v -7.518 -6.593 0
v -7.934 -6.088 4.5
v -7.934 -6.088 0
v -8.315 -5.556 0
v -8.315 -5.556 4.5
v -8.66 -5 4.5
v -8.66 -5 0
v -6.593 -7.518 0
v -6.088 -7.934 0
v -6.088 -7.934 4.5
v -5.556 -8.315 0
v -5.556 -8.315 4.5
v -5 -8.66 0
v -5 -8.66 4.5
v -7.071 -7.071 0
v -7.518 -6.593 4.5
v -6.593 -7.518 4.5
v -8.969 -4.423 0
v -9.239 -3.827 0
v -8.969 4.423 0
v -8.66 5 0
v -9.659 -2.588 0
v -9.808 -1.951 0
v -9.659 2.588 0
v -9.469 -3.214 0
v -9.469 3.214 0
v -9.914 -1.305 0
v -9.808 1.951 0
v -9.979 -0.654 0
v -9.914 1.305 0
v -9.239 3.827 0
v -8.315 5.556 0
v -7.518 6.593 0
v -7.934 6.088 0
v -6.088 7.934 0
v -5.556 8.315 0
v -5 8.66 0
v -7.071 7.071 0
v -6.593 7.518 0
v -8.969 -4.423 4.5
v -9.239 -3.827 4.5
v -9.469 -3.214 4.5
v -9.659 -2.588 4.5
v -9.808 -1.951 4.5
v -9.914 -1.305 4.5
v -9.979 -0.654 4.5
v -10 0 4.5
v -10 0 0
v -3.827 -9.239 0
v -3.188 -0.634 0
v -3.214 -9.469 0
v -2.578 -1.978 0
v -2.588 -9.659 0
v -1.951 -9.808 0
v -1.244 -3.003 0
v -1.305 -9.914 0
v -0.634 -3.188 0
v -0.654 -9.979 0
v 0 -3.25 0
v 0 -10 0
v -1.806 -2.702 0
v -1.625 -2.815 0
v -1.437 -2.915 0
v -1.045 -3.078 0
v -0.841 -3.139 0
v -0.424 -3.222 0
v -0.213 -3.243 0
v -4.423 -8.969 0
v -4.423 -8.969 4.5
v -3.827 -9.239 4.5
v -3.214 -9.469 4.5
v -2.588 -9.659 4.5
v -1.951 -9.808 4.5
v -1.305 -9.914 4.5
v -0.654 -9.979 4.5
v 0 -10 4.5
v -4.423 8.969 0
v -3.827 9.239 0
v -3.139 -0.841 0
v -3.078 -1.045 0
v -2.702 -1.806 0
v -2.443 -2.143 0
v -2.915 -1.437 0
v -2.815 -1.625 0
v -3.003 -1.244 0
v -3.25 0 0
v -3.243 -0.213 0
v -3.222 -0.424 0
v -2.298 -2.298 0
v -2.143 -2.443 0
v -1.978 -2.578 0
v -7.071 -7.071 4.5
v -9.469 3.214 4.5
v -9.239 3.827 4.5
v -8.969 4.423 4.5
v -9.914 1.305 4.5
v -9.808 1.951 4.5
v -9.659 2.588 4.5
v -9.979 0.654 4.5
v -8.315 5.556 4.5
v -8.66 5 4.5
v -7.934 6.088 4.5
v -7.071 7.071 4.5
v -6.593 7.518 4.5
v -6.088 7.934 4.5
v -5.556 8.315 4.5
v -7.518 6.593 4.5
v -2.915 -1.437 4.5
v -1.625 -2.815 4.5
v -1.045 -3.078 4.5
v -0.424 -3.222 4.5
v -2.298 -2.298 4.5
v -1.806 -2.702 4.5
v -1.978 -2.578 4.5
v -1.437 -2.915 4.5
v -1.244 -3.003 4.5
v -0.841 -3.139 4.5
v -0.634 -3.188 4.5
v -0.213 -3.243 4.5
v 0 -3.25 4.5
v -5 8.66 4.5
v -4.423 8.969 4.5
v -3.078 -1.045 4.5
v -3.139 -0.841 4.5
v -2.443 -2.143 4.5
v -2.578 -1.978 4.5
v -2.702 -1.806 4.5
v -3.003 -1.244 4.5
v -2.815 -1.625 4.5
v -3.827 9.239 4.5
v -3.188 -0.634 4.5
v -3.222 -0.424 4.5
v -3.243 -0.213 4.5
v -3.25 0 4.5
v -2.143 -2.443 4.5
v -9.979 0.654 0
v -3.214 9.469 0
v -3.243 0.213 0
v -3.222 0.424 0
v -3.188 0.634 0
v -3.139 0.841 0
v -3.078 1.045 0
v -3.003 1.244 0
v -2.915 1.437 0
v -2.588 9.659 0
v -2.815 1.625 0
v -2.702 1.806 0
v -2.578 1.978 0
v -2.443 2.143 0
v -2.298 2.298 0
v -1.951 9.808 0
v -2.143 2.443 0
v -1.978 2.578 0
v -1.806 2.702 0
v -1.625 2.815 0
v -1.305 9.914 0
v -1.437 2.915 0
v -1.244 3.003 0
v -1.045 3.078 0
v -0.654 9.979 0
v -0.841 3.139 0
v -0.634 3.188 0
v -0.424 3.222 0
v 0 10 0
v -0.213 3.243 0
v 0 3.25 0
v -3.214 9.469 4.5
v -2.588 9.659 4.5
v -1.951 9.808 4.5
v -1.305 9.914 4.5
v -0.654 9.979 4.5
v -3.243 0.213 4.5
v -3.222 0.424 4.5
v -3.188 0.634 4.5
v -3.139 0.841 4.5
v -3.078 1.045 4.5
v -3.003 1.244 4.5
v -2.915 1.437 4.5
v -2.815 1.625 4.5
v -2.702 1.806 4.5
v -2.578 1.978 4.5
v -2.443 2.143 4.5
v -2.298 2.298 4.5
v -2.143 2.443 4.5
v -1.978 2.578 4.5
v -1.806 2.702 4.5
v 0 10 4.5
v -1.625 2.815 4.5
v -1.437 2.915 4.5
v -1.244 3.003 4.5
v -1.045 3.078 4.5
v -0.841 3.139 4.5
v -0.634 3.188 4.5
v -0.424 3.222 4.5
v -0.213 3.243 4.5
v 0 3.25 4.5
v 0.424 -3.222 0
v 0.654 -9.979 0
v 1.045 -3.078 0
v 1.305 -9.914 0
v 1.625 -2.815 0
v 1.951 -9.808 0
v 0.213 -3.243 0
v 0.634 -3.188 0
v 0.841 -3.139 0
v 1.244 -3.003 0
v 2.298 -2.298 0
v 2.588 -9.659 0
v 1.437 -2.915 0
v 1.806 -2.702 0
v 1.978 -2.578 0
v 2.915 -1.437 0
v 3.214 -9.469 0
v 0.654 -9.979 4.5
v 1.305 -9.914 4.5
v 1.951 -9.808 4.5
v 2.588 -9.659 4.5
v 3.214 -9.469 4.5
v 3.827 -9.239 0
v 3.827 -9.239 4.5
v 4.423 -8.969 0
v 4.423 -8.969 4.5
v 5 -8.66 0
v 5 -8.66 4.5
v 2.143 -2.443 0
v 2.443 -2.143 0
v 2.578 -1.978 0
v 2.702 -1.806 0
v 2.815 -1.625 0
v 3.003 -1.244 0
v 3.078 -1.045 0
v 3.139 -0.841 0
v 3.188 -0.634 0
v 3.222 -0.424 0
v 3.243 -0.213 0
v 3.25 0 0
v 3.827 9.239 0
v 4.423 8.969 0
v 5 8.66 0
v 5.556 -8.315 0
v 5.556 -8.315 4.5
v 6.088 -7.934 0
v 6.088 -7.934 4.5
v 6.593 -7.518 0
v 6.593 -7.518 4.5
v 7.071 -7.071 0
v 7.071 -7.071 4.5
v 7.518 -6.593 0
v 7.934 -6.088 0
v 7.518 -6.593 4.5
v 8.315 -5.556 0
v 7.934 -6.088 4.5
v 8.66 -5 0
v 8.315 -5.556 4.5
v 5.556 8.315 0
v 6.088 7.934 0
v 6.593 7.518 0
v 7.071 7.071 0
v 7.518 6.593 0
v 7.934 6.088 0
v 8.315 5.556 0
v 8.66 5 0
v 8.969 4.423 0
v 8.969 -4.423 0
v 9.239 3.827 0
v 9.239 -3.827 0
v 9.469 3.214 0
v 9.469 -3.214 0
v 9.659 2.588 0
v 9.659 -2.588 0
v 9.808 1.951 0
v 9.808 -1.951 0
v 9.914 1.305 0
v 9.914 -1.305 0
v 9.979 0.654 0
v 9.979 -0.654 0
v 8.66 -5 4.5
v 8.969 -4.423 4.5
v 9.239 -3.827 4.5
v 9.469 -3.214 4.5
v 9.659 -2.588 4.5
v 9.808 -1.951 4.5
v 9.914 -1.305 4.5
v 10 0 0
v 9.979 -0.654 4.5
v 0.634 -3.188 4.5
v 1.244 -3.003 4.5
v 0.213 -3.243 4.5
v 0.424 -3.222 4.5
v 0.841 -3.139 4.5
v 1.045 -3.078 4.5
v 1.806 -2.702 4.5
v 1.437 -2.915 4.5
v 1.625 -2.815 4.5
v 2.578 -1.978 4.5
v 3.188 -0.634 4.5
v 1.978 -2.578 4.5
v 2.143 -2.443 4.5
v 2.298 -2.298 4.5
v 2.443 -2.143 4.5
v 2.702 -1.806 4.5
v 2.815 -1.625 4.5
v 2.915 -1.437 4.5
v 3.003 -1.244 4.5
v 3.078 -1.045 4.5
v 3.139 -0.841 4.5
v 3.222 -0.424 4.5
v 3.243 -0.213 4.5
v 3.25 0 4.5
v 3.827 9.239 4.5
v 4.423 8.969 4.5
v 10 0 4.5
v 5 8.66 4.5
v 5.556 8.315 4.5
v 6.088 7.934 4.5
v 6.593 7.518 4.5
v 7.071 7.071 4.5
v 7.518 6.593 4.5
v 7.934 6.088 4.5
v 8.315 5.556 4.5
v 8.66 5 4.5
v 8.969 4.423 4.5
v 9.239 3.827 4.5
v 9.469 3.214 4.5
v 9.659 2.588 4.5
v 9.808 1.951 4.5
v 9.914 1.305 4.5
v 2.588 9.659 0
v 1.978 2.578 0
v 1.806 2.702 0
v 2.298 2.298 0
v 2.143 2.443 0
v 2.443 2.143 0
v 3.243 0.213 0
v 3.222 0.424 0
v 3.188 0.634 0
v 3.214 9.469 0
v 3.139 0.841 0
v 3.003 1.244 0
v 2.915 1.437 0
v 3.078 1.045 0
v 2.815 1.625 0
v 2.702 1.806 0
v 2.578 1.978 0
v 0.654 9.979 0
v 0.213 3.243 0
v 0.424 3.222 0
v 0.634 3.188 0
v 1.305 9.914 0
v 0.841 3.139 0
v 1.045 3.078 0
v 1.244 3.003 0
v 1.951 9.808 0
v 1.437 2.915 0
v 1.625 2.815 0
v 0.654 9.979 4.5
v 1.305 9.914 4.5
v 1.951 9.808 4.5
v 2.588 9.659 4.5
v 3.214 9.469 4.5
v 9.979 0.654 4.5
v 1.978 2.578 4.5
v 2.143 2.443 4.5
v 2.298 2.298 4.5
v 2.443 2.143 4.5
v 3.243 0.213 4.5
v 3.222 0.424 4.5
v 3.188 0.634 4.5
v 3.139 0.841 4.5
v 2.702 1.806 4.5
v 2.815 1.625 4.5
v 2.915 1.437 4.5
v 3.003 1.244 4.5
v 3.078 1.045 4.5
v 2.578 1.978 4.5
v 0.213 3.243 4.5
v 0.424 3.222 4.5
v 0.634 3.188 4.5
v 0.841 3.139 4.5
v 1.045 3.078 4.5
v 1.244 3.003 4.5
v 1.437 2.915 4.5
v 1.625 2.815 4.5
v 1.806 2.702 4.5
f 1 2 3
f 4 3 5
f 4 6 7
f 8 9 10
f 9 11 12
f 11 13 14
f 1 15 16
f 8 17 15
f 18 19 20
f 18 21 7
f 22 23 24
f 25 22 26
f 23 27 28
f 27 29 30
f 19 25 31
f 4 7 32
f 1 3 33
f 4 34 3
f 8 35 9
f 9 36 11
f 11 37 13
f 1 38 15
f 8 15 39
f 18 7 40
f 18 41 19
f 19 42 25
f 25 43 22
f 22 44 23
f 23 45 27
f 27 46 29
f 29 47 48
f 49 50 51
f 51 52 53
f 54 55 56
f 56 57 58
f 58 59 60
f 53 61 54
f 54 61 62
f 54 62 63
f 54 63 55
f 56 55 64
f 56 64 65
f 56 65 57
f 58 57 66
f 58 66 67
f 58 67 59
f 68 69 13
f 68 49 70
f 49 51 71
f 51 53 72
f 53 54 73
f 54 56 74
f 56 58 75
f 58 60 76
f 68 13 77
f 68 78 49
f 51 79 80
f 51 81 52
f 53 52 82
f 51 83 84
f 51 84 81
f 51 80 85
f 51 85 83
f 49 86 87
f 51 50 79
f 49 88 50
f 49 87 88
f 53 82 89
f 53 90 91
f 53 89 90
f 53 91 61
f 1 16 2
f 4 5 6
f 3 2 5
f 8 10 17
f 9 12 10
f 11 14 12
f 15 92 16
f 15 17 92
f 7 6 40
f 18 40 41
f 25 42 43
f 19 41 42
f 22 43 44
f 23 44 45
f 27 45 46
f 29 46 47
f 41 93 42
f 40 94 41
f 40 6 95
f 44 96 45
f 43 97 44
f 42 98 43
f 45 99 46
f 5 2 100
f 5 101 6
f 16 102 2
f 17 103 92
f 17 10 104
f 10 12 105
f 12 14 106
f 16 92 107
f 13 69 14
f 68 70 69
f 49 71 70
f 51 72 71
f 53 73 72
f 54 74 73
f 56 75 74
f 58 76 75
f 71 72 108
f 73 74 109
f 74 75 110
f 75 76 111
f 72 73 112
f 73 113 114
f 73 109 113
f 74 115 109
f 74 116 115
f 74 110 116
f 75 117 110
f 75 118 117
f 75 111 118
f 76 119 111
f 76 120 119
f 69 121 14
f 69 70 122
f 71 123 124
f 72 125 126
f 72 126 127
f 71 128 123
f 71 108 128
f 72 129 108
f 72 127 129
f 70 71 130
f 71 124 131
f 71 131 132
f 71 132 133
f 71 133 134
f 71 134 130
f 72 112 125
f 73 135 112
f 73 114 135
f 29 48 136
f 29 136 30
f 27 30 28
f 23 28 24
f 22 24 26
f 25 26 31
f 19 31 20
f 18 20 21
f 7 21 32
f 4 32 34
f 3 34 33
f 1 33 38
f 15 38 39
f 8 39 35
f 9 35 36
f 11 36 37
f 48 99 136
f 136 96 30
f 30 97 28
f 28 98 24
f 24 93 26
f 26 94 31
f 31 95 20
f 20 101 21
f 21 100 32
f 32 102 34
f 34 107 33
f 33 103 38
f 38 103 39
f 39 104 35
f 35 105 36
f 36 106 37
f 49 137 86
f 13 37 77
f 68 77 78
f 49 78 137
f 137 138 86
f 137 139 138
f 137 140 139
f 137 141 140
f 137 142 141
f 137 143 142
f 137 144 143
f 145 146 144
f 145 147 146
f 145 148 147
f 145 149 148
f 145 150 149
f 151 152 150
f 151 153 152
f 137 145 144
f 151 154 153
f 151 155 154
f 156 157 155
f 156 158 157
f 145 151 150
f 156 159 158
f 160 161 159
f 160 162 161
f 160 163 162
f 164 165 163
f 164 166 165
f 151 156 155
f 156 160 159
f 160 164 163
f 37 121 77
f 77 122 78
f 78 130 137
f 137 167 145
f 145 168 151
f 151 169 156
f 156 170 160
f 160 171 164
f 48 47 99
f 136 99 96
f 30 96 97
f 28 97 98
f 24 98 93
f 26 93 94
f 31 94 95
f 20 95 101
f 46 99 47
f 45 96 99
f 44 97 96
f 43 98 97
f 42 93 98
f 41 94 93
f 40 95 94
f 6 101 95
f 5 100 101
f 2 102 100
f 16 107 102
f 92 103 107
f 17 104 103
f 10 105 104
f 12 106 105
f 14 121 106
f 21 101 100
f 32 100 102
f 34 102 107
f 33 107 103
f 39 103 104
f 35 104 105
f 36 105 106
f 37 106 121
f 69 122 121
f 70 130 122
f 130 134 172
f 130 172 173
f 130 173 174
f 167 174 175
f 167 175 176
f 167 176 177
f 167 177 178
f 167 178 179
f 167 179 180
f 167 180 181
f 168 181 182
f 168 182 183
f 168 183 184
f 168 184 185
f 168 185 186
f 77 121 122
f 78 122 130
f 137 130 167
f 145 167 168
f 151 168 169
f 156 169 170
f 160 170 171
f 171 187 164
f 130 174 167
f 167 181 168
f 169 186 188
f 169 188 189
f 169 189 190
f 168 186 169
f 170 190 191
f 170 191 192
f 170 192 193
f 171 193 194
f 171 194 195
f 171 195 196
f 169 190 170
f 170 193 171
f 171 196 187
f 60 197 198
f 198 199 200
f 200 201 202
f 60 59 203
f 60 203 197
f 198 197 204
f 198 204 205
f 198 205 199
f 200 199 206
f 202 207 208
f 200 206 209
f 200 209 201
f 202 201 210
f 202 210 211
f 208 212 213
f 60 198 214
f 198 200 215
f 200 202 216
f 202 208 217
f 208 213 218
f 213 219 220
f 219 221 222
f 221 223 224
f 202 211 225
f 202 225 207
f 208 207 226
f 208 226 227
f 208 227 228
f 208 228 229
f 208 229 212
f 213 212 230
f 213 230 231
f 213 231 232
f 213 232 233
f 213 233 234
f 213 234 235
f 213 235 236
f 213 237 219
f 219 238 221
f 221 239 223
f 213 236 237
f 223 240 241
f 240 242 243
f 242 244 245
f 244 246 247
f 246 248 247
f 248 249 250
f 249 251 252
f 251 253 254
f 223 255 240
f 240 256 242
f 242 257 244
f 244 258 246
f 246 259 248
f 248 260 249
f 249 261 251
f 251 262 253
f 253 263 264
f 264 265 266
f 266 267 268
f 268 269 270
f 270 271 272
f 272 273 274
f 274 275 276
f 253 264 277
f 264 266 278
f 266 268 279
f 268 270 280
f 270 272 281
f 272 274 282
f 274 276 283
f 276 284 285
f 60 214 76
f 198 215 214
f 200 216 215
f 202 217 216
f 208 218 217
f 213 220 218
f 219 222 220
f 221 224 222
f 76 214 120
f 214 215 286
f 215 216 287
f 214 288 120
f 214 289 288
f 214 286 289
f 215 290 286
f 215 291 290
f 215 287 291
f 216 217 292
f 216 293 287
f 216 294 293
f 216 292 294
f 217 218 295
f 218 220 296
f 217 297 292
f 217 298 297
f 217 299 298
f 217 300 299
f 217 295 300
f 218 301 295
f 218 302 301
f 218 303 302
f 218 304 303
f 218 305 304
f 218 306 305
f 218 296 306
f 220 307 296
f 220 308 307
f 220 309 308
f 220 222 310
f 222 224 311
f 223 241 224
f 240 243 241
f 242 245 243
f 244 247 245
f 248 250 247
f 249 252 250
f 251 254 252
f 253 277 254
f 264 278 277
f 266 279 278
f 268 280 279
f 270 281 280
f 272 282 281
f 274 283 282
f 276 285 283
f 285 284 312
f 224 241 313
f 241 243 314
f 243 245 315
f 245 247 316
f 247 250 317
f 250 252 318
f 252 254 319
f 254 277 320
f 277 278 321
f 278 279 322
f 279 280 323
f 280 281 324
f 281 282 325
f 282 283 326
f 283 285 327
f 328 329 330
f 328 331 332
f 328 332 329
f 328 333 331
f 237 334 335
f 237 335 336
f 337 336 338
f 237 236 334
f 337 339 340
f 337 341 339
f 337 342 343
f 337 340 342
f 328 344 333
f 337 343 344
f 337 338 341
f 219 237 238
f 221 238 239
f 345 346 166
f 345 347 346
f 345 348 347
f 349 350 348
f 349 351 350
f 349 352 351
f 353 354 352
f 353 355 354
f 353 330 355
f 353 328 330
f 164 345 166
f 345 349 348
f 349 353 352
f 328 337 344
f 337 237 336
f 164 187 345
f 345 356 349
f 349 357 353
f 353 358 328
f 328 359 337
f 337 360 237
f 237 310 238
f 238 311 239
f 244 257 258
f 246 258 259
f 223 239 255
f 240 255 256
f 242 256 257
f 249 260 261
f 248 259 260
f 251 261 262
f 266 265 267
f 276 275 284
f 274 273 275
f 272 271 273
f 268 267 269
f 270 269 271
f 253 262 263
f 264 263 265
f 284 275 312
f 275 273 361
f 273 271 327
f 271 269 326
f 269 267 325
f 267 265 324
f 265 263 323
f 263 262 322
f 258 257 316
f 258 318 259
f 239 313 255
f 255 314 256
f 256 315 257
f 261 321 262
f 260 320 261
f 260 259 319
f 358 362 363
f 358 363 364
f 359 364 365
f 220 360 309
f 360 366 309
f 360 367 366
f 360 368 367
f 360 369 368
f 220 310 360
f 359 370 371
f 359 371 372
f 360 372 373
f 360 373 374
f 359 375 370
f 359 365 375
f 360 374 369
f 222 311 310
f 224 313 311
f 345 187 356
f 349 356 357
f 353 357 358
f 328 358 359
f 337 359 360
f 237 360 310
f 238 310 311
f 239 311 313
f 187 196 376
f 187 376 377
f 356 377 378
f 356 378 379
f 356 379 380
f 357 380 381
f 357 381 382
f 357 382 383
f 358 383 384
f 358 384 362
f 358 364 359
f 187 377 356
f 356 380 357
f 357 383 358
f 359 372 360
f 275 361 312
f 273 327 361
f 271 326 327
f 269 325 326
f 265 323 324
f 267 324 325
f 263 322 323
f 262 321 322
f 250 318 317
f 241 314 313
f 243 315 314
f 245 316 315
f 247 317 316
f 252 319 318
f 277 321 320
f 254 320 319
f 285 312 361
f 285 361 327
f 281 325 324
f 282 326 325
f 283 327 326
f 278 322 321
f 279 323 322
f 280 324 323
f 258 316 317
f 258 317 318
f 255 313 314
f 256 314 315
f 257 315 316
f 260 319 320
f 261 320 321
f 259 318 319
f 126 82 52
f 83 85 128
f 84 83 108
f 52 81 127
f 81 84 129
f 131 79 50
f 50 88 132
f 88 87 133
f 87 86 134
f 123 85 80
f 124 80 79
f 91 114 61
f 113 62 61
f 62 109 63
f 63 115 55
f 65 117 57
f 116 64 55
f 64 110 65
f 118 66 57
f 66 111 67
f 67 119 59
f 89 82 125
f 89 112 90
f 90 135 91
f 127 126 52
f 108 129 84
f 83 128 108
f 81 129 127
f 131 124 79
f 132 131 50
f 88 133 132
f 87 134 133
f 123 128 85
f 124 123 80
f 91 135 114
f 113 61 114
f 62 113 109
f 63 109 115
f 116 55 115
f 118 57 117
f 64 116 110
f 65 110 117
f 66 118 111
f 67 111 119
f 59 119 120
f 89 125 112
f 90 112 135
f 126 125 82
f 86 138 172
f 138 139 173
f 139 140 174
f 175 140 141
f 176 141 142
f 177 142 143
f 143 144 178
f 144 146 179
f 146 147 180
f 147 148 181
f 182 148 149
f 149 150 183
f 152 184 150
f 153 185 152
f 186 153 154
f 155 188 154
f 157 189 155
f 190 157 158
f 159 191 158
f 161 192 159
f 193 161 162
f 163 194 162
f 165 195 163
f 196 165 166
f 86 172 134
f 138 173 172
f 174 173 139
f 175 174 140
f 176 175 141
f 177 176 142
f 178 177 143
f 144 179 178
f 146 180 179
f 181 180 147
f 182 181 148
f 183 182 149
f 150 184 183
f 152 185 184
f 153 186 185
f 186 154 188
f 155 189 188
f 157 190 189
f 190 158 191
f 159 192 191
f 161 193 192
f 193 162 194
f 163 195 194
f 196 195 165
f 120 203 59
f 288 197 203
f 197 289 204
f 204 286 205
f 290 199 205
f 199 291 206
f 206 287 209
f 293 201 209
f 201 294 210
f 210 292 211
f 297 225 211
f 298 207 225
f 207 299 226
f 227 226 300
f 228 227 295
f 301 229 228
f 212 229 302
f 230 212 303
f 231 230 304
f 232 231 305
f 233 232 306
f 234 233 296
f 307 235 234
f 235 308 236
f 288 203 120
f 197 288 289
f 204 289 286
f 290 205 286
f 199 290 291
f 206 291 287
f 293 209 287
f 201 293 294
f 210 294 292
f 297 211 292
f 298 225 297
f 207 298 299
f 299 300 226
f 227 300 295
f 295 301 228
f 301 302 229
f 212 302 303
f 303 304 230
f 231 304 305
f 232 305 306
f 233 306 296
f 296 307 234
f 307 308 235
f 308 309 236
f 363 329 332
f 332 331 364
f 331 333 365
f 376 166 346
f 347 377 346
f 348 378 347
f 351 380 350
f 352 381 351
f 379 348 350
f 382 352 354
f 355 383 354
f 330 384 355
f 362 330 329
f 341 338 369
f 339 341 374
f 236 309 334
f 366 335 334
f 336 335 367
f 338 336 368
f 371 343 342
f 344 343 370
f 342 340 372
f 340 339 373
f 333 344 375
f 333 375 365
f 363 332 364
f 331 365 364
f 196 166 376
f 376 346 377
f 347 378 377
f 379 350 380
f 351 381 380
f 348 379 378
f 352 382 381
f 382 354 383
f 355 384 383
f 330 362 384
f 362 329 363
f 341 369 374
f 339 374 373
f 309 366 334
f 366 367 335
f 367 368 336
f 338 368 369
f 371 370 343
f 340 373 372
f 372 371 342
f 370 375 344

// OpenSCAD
// Generated by working_scad; edit the Python builders or populate options.
$fn=96;
module input_shaft_spacer() {
difference() {
	union() {
		cylinder(h = 4.5, r = 10.0);
	}
	union() {
		translate(v = [0, 0, -0.01]) {
			cylinder(h = 4.52, r = 3.25);
		}
	}
}

}
input_shaft_spacer();
